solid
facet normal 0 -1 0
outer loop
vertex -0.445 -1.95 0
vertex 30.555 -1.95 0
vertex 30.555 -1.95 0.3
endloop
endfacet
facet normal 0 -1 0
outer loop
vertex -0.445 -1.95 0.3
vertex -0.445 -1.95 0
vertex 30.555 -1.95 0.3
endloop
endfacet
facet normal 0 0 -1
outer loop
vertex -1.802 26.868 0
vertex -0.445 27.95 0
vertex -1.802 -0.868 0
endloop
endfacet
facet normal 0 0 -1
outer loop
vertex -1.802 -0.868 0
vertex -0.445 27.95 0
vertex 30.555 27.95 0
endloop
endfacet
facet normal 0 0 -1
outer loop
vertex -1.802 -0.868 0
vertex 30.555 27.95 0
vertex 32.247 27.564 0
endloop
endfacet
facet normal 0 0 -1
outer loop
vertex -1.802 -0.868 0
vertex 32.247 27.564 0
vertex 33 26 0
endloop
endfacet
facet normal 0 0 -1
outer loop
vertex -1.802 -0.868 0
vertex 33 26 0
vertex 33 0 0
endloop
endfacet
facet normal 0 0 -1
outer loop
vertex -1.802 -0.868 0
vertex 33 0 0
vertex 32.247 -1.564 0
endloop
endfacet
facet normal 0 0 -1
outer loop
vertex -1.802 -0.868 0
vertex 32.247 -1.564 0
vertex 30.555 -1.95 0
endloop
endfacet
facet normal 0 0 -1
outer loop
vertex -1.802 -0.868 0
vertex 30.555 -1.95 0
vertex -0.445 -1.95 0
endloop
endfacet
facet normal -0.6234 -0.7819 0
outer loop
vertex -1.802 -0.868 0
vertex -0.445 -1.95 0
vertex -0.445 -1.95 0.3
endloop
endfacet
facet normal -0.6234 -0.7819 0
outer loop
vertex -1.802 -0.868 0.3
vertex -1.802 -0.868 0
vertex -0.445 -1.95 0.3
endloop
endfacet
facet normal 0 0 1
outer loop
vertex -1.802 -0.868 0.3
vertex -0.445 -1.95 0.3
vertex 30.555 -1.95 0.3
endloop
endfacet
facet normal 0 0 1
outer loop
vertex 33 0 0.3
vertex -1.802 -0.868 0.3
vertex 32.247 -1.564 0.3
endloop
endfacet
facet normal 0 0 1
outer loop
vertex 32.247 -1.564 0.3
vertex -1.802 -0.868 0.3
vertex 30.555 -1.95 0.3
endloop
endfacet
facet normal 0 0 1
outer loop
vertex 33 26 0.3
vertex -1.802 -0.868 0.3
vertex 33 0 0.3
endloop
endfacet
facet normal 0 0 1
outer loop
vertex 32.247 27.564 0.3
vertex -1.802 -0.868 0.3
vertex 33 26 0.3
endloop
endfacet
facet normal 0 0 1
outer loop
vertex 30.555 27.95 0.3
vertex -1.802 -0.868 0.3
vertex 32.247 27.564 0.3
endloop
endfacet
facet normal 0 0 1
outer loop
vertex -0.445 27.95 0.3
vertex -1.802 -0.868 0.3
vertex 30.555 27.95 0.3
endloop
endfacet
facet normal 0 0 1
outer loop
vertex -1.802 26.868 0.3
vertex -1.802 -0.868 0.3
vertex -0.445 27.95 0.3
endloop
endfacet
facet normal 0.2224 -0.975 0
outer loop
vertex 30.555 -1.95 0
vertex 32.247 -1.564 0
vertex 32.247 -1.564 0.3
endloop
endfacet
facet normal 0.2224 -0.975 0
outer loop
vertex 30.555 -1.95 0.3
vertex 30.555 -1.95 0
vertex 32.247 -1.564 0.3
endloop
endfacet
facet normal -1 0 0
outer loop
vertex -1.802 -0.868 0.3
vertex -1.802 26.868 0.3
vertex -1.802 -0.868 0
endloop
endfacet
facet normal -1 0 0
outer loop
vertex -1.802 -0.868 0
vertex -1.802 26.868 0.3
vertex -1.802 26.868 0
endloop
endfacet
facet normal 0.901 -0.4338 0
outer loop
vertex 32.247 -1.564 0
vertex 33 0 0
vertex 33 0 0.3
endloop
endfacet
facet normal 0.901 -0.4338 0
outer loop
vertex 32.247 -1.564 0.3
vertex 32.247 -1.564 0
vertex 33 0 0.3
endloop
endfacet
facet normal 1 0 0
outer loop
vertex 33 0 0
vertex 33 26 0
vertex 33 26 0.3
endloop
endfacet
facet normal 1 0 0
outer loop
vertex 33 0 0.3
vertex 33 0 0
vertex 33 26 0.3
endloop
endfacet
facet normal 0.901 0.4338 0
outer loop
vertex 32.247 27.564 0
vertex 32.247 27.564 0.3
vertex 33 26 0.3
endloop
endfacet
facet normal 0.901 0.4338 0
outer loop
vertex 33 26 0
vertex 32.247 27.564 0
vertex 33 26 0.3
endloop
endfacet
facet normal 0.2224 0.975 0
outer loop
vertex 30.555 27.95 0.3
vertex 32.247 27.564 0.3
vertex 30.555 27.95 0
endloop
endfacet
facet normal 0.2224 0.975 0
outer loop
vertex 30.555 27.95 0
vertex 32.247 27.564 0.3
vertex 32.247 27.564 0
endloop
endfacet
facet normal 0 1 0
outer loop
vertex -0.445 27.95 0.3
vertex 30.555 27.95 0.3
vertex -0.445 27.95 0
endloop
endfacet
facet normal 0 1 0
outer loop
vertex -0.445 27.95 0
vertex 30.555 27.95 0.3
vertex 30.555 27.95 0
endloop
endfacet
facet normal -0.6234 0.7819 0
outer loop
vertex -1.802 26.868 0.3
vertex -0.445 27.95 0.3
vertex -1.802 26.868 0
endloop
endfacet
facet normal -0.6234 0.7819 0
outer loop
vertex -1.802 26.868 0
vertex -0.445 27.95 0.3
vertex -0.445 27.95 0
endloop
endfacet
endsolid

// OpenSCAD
rad = 2;
xDim = 31;
yDim = 26;

linear_extrude(height=0.3) hull() {
   translate([0,    0, 0])    circle(r=rad);
   translate([xDim, 0, 0])    circle(r=rad);
   translate([0,    yDim, 0]) circle(r=rad);
   translate([xDim, yDim, 0]) circle(r=rad);
}
